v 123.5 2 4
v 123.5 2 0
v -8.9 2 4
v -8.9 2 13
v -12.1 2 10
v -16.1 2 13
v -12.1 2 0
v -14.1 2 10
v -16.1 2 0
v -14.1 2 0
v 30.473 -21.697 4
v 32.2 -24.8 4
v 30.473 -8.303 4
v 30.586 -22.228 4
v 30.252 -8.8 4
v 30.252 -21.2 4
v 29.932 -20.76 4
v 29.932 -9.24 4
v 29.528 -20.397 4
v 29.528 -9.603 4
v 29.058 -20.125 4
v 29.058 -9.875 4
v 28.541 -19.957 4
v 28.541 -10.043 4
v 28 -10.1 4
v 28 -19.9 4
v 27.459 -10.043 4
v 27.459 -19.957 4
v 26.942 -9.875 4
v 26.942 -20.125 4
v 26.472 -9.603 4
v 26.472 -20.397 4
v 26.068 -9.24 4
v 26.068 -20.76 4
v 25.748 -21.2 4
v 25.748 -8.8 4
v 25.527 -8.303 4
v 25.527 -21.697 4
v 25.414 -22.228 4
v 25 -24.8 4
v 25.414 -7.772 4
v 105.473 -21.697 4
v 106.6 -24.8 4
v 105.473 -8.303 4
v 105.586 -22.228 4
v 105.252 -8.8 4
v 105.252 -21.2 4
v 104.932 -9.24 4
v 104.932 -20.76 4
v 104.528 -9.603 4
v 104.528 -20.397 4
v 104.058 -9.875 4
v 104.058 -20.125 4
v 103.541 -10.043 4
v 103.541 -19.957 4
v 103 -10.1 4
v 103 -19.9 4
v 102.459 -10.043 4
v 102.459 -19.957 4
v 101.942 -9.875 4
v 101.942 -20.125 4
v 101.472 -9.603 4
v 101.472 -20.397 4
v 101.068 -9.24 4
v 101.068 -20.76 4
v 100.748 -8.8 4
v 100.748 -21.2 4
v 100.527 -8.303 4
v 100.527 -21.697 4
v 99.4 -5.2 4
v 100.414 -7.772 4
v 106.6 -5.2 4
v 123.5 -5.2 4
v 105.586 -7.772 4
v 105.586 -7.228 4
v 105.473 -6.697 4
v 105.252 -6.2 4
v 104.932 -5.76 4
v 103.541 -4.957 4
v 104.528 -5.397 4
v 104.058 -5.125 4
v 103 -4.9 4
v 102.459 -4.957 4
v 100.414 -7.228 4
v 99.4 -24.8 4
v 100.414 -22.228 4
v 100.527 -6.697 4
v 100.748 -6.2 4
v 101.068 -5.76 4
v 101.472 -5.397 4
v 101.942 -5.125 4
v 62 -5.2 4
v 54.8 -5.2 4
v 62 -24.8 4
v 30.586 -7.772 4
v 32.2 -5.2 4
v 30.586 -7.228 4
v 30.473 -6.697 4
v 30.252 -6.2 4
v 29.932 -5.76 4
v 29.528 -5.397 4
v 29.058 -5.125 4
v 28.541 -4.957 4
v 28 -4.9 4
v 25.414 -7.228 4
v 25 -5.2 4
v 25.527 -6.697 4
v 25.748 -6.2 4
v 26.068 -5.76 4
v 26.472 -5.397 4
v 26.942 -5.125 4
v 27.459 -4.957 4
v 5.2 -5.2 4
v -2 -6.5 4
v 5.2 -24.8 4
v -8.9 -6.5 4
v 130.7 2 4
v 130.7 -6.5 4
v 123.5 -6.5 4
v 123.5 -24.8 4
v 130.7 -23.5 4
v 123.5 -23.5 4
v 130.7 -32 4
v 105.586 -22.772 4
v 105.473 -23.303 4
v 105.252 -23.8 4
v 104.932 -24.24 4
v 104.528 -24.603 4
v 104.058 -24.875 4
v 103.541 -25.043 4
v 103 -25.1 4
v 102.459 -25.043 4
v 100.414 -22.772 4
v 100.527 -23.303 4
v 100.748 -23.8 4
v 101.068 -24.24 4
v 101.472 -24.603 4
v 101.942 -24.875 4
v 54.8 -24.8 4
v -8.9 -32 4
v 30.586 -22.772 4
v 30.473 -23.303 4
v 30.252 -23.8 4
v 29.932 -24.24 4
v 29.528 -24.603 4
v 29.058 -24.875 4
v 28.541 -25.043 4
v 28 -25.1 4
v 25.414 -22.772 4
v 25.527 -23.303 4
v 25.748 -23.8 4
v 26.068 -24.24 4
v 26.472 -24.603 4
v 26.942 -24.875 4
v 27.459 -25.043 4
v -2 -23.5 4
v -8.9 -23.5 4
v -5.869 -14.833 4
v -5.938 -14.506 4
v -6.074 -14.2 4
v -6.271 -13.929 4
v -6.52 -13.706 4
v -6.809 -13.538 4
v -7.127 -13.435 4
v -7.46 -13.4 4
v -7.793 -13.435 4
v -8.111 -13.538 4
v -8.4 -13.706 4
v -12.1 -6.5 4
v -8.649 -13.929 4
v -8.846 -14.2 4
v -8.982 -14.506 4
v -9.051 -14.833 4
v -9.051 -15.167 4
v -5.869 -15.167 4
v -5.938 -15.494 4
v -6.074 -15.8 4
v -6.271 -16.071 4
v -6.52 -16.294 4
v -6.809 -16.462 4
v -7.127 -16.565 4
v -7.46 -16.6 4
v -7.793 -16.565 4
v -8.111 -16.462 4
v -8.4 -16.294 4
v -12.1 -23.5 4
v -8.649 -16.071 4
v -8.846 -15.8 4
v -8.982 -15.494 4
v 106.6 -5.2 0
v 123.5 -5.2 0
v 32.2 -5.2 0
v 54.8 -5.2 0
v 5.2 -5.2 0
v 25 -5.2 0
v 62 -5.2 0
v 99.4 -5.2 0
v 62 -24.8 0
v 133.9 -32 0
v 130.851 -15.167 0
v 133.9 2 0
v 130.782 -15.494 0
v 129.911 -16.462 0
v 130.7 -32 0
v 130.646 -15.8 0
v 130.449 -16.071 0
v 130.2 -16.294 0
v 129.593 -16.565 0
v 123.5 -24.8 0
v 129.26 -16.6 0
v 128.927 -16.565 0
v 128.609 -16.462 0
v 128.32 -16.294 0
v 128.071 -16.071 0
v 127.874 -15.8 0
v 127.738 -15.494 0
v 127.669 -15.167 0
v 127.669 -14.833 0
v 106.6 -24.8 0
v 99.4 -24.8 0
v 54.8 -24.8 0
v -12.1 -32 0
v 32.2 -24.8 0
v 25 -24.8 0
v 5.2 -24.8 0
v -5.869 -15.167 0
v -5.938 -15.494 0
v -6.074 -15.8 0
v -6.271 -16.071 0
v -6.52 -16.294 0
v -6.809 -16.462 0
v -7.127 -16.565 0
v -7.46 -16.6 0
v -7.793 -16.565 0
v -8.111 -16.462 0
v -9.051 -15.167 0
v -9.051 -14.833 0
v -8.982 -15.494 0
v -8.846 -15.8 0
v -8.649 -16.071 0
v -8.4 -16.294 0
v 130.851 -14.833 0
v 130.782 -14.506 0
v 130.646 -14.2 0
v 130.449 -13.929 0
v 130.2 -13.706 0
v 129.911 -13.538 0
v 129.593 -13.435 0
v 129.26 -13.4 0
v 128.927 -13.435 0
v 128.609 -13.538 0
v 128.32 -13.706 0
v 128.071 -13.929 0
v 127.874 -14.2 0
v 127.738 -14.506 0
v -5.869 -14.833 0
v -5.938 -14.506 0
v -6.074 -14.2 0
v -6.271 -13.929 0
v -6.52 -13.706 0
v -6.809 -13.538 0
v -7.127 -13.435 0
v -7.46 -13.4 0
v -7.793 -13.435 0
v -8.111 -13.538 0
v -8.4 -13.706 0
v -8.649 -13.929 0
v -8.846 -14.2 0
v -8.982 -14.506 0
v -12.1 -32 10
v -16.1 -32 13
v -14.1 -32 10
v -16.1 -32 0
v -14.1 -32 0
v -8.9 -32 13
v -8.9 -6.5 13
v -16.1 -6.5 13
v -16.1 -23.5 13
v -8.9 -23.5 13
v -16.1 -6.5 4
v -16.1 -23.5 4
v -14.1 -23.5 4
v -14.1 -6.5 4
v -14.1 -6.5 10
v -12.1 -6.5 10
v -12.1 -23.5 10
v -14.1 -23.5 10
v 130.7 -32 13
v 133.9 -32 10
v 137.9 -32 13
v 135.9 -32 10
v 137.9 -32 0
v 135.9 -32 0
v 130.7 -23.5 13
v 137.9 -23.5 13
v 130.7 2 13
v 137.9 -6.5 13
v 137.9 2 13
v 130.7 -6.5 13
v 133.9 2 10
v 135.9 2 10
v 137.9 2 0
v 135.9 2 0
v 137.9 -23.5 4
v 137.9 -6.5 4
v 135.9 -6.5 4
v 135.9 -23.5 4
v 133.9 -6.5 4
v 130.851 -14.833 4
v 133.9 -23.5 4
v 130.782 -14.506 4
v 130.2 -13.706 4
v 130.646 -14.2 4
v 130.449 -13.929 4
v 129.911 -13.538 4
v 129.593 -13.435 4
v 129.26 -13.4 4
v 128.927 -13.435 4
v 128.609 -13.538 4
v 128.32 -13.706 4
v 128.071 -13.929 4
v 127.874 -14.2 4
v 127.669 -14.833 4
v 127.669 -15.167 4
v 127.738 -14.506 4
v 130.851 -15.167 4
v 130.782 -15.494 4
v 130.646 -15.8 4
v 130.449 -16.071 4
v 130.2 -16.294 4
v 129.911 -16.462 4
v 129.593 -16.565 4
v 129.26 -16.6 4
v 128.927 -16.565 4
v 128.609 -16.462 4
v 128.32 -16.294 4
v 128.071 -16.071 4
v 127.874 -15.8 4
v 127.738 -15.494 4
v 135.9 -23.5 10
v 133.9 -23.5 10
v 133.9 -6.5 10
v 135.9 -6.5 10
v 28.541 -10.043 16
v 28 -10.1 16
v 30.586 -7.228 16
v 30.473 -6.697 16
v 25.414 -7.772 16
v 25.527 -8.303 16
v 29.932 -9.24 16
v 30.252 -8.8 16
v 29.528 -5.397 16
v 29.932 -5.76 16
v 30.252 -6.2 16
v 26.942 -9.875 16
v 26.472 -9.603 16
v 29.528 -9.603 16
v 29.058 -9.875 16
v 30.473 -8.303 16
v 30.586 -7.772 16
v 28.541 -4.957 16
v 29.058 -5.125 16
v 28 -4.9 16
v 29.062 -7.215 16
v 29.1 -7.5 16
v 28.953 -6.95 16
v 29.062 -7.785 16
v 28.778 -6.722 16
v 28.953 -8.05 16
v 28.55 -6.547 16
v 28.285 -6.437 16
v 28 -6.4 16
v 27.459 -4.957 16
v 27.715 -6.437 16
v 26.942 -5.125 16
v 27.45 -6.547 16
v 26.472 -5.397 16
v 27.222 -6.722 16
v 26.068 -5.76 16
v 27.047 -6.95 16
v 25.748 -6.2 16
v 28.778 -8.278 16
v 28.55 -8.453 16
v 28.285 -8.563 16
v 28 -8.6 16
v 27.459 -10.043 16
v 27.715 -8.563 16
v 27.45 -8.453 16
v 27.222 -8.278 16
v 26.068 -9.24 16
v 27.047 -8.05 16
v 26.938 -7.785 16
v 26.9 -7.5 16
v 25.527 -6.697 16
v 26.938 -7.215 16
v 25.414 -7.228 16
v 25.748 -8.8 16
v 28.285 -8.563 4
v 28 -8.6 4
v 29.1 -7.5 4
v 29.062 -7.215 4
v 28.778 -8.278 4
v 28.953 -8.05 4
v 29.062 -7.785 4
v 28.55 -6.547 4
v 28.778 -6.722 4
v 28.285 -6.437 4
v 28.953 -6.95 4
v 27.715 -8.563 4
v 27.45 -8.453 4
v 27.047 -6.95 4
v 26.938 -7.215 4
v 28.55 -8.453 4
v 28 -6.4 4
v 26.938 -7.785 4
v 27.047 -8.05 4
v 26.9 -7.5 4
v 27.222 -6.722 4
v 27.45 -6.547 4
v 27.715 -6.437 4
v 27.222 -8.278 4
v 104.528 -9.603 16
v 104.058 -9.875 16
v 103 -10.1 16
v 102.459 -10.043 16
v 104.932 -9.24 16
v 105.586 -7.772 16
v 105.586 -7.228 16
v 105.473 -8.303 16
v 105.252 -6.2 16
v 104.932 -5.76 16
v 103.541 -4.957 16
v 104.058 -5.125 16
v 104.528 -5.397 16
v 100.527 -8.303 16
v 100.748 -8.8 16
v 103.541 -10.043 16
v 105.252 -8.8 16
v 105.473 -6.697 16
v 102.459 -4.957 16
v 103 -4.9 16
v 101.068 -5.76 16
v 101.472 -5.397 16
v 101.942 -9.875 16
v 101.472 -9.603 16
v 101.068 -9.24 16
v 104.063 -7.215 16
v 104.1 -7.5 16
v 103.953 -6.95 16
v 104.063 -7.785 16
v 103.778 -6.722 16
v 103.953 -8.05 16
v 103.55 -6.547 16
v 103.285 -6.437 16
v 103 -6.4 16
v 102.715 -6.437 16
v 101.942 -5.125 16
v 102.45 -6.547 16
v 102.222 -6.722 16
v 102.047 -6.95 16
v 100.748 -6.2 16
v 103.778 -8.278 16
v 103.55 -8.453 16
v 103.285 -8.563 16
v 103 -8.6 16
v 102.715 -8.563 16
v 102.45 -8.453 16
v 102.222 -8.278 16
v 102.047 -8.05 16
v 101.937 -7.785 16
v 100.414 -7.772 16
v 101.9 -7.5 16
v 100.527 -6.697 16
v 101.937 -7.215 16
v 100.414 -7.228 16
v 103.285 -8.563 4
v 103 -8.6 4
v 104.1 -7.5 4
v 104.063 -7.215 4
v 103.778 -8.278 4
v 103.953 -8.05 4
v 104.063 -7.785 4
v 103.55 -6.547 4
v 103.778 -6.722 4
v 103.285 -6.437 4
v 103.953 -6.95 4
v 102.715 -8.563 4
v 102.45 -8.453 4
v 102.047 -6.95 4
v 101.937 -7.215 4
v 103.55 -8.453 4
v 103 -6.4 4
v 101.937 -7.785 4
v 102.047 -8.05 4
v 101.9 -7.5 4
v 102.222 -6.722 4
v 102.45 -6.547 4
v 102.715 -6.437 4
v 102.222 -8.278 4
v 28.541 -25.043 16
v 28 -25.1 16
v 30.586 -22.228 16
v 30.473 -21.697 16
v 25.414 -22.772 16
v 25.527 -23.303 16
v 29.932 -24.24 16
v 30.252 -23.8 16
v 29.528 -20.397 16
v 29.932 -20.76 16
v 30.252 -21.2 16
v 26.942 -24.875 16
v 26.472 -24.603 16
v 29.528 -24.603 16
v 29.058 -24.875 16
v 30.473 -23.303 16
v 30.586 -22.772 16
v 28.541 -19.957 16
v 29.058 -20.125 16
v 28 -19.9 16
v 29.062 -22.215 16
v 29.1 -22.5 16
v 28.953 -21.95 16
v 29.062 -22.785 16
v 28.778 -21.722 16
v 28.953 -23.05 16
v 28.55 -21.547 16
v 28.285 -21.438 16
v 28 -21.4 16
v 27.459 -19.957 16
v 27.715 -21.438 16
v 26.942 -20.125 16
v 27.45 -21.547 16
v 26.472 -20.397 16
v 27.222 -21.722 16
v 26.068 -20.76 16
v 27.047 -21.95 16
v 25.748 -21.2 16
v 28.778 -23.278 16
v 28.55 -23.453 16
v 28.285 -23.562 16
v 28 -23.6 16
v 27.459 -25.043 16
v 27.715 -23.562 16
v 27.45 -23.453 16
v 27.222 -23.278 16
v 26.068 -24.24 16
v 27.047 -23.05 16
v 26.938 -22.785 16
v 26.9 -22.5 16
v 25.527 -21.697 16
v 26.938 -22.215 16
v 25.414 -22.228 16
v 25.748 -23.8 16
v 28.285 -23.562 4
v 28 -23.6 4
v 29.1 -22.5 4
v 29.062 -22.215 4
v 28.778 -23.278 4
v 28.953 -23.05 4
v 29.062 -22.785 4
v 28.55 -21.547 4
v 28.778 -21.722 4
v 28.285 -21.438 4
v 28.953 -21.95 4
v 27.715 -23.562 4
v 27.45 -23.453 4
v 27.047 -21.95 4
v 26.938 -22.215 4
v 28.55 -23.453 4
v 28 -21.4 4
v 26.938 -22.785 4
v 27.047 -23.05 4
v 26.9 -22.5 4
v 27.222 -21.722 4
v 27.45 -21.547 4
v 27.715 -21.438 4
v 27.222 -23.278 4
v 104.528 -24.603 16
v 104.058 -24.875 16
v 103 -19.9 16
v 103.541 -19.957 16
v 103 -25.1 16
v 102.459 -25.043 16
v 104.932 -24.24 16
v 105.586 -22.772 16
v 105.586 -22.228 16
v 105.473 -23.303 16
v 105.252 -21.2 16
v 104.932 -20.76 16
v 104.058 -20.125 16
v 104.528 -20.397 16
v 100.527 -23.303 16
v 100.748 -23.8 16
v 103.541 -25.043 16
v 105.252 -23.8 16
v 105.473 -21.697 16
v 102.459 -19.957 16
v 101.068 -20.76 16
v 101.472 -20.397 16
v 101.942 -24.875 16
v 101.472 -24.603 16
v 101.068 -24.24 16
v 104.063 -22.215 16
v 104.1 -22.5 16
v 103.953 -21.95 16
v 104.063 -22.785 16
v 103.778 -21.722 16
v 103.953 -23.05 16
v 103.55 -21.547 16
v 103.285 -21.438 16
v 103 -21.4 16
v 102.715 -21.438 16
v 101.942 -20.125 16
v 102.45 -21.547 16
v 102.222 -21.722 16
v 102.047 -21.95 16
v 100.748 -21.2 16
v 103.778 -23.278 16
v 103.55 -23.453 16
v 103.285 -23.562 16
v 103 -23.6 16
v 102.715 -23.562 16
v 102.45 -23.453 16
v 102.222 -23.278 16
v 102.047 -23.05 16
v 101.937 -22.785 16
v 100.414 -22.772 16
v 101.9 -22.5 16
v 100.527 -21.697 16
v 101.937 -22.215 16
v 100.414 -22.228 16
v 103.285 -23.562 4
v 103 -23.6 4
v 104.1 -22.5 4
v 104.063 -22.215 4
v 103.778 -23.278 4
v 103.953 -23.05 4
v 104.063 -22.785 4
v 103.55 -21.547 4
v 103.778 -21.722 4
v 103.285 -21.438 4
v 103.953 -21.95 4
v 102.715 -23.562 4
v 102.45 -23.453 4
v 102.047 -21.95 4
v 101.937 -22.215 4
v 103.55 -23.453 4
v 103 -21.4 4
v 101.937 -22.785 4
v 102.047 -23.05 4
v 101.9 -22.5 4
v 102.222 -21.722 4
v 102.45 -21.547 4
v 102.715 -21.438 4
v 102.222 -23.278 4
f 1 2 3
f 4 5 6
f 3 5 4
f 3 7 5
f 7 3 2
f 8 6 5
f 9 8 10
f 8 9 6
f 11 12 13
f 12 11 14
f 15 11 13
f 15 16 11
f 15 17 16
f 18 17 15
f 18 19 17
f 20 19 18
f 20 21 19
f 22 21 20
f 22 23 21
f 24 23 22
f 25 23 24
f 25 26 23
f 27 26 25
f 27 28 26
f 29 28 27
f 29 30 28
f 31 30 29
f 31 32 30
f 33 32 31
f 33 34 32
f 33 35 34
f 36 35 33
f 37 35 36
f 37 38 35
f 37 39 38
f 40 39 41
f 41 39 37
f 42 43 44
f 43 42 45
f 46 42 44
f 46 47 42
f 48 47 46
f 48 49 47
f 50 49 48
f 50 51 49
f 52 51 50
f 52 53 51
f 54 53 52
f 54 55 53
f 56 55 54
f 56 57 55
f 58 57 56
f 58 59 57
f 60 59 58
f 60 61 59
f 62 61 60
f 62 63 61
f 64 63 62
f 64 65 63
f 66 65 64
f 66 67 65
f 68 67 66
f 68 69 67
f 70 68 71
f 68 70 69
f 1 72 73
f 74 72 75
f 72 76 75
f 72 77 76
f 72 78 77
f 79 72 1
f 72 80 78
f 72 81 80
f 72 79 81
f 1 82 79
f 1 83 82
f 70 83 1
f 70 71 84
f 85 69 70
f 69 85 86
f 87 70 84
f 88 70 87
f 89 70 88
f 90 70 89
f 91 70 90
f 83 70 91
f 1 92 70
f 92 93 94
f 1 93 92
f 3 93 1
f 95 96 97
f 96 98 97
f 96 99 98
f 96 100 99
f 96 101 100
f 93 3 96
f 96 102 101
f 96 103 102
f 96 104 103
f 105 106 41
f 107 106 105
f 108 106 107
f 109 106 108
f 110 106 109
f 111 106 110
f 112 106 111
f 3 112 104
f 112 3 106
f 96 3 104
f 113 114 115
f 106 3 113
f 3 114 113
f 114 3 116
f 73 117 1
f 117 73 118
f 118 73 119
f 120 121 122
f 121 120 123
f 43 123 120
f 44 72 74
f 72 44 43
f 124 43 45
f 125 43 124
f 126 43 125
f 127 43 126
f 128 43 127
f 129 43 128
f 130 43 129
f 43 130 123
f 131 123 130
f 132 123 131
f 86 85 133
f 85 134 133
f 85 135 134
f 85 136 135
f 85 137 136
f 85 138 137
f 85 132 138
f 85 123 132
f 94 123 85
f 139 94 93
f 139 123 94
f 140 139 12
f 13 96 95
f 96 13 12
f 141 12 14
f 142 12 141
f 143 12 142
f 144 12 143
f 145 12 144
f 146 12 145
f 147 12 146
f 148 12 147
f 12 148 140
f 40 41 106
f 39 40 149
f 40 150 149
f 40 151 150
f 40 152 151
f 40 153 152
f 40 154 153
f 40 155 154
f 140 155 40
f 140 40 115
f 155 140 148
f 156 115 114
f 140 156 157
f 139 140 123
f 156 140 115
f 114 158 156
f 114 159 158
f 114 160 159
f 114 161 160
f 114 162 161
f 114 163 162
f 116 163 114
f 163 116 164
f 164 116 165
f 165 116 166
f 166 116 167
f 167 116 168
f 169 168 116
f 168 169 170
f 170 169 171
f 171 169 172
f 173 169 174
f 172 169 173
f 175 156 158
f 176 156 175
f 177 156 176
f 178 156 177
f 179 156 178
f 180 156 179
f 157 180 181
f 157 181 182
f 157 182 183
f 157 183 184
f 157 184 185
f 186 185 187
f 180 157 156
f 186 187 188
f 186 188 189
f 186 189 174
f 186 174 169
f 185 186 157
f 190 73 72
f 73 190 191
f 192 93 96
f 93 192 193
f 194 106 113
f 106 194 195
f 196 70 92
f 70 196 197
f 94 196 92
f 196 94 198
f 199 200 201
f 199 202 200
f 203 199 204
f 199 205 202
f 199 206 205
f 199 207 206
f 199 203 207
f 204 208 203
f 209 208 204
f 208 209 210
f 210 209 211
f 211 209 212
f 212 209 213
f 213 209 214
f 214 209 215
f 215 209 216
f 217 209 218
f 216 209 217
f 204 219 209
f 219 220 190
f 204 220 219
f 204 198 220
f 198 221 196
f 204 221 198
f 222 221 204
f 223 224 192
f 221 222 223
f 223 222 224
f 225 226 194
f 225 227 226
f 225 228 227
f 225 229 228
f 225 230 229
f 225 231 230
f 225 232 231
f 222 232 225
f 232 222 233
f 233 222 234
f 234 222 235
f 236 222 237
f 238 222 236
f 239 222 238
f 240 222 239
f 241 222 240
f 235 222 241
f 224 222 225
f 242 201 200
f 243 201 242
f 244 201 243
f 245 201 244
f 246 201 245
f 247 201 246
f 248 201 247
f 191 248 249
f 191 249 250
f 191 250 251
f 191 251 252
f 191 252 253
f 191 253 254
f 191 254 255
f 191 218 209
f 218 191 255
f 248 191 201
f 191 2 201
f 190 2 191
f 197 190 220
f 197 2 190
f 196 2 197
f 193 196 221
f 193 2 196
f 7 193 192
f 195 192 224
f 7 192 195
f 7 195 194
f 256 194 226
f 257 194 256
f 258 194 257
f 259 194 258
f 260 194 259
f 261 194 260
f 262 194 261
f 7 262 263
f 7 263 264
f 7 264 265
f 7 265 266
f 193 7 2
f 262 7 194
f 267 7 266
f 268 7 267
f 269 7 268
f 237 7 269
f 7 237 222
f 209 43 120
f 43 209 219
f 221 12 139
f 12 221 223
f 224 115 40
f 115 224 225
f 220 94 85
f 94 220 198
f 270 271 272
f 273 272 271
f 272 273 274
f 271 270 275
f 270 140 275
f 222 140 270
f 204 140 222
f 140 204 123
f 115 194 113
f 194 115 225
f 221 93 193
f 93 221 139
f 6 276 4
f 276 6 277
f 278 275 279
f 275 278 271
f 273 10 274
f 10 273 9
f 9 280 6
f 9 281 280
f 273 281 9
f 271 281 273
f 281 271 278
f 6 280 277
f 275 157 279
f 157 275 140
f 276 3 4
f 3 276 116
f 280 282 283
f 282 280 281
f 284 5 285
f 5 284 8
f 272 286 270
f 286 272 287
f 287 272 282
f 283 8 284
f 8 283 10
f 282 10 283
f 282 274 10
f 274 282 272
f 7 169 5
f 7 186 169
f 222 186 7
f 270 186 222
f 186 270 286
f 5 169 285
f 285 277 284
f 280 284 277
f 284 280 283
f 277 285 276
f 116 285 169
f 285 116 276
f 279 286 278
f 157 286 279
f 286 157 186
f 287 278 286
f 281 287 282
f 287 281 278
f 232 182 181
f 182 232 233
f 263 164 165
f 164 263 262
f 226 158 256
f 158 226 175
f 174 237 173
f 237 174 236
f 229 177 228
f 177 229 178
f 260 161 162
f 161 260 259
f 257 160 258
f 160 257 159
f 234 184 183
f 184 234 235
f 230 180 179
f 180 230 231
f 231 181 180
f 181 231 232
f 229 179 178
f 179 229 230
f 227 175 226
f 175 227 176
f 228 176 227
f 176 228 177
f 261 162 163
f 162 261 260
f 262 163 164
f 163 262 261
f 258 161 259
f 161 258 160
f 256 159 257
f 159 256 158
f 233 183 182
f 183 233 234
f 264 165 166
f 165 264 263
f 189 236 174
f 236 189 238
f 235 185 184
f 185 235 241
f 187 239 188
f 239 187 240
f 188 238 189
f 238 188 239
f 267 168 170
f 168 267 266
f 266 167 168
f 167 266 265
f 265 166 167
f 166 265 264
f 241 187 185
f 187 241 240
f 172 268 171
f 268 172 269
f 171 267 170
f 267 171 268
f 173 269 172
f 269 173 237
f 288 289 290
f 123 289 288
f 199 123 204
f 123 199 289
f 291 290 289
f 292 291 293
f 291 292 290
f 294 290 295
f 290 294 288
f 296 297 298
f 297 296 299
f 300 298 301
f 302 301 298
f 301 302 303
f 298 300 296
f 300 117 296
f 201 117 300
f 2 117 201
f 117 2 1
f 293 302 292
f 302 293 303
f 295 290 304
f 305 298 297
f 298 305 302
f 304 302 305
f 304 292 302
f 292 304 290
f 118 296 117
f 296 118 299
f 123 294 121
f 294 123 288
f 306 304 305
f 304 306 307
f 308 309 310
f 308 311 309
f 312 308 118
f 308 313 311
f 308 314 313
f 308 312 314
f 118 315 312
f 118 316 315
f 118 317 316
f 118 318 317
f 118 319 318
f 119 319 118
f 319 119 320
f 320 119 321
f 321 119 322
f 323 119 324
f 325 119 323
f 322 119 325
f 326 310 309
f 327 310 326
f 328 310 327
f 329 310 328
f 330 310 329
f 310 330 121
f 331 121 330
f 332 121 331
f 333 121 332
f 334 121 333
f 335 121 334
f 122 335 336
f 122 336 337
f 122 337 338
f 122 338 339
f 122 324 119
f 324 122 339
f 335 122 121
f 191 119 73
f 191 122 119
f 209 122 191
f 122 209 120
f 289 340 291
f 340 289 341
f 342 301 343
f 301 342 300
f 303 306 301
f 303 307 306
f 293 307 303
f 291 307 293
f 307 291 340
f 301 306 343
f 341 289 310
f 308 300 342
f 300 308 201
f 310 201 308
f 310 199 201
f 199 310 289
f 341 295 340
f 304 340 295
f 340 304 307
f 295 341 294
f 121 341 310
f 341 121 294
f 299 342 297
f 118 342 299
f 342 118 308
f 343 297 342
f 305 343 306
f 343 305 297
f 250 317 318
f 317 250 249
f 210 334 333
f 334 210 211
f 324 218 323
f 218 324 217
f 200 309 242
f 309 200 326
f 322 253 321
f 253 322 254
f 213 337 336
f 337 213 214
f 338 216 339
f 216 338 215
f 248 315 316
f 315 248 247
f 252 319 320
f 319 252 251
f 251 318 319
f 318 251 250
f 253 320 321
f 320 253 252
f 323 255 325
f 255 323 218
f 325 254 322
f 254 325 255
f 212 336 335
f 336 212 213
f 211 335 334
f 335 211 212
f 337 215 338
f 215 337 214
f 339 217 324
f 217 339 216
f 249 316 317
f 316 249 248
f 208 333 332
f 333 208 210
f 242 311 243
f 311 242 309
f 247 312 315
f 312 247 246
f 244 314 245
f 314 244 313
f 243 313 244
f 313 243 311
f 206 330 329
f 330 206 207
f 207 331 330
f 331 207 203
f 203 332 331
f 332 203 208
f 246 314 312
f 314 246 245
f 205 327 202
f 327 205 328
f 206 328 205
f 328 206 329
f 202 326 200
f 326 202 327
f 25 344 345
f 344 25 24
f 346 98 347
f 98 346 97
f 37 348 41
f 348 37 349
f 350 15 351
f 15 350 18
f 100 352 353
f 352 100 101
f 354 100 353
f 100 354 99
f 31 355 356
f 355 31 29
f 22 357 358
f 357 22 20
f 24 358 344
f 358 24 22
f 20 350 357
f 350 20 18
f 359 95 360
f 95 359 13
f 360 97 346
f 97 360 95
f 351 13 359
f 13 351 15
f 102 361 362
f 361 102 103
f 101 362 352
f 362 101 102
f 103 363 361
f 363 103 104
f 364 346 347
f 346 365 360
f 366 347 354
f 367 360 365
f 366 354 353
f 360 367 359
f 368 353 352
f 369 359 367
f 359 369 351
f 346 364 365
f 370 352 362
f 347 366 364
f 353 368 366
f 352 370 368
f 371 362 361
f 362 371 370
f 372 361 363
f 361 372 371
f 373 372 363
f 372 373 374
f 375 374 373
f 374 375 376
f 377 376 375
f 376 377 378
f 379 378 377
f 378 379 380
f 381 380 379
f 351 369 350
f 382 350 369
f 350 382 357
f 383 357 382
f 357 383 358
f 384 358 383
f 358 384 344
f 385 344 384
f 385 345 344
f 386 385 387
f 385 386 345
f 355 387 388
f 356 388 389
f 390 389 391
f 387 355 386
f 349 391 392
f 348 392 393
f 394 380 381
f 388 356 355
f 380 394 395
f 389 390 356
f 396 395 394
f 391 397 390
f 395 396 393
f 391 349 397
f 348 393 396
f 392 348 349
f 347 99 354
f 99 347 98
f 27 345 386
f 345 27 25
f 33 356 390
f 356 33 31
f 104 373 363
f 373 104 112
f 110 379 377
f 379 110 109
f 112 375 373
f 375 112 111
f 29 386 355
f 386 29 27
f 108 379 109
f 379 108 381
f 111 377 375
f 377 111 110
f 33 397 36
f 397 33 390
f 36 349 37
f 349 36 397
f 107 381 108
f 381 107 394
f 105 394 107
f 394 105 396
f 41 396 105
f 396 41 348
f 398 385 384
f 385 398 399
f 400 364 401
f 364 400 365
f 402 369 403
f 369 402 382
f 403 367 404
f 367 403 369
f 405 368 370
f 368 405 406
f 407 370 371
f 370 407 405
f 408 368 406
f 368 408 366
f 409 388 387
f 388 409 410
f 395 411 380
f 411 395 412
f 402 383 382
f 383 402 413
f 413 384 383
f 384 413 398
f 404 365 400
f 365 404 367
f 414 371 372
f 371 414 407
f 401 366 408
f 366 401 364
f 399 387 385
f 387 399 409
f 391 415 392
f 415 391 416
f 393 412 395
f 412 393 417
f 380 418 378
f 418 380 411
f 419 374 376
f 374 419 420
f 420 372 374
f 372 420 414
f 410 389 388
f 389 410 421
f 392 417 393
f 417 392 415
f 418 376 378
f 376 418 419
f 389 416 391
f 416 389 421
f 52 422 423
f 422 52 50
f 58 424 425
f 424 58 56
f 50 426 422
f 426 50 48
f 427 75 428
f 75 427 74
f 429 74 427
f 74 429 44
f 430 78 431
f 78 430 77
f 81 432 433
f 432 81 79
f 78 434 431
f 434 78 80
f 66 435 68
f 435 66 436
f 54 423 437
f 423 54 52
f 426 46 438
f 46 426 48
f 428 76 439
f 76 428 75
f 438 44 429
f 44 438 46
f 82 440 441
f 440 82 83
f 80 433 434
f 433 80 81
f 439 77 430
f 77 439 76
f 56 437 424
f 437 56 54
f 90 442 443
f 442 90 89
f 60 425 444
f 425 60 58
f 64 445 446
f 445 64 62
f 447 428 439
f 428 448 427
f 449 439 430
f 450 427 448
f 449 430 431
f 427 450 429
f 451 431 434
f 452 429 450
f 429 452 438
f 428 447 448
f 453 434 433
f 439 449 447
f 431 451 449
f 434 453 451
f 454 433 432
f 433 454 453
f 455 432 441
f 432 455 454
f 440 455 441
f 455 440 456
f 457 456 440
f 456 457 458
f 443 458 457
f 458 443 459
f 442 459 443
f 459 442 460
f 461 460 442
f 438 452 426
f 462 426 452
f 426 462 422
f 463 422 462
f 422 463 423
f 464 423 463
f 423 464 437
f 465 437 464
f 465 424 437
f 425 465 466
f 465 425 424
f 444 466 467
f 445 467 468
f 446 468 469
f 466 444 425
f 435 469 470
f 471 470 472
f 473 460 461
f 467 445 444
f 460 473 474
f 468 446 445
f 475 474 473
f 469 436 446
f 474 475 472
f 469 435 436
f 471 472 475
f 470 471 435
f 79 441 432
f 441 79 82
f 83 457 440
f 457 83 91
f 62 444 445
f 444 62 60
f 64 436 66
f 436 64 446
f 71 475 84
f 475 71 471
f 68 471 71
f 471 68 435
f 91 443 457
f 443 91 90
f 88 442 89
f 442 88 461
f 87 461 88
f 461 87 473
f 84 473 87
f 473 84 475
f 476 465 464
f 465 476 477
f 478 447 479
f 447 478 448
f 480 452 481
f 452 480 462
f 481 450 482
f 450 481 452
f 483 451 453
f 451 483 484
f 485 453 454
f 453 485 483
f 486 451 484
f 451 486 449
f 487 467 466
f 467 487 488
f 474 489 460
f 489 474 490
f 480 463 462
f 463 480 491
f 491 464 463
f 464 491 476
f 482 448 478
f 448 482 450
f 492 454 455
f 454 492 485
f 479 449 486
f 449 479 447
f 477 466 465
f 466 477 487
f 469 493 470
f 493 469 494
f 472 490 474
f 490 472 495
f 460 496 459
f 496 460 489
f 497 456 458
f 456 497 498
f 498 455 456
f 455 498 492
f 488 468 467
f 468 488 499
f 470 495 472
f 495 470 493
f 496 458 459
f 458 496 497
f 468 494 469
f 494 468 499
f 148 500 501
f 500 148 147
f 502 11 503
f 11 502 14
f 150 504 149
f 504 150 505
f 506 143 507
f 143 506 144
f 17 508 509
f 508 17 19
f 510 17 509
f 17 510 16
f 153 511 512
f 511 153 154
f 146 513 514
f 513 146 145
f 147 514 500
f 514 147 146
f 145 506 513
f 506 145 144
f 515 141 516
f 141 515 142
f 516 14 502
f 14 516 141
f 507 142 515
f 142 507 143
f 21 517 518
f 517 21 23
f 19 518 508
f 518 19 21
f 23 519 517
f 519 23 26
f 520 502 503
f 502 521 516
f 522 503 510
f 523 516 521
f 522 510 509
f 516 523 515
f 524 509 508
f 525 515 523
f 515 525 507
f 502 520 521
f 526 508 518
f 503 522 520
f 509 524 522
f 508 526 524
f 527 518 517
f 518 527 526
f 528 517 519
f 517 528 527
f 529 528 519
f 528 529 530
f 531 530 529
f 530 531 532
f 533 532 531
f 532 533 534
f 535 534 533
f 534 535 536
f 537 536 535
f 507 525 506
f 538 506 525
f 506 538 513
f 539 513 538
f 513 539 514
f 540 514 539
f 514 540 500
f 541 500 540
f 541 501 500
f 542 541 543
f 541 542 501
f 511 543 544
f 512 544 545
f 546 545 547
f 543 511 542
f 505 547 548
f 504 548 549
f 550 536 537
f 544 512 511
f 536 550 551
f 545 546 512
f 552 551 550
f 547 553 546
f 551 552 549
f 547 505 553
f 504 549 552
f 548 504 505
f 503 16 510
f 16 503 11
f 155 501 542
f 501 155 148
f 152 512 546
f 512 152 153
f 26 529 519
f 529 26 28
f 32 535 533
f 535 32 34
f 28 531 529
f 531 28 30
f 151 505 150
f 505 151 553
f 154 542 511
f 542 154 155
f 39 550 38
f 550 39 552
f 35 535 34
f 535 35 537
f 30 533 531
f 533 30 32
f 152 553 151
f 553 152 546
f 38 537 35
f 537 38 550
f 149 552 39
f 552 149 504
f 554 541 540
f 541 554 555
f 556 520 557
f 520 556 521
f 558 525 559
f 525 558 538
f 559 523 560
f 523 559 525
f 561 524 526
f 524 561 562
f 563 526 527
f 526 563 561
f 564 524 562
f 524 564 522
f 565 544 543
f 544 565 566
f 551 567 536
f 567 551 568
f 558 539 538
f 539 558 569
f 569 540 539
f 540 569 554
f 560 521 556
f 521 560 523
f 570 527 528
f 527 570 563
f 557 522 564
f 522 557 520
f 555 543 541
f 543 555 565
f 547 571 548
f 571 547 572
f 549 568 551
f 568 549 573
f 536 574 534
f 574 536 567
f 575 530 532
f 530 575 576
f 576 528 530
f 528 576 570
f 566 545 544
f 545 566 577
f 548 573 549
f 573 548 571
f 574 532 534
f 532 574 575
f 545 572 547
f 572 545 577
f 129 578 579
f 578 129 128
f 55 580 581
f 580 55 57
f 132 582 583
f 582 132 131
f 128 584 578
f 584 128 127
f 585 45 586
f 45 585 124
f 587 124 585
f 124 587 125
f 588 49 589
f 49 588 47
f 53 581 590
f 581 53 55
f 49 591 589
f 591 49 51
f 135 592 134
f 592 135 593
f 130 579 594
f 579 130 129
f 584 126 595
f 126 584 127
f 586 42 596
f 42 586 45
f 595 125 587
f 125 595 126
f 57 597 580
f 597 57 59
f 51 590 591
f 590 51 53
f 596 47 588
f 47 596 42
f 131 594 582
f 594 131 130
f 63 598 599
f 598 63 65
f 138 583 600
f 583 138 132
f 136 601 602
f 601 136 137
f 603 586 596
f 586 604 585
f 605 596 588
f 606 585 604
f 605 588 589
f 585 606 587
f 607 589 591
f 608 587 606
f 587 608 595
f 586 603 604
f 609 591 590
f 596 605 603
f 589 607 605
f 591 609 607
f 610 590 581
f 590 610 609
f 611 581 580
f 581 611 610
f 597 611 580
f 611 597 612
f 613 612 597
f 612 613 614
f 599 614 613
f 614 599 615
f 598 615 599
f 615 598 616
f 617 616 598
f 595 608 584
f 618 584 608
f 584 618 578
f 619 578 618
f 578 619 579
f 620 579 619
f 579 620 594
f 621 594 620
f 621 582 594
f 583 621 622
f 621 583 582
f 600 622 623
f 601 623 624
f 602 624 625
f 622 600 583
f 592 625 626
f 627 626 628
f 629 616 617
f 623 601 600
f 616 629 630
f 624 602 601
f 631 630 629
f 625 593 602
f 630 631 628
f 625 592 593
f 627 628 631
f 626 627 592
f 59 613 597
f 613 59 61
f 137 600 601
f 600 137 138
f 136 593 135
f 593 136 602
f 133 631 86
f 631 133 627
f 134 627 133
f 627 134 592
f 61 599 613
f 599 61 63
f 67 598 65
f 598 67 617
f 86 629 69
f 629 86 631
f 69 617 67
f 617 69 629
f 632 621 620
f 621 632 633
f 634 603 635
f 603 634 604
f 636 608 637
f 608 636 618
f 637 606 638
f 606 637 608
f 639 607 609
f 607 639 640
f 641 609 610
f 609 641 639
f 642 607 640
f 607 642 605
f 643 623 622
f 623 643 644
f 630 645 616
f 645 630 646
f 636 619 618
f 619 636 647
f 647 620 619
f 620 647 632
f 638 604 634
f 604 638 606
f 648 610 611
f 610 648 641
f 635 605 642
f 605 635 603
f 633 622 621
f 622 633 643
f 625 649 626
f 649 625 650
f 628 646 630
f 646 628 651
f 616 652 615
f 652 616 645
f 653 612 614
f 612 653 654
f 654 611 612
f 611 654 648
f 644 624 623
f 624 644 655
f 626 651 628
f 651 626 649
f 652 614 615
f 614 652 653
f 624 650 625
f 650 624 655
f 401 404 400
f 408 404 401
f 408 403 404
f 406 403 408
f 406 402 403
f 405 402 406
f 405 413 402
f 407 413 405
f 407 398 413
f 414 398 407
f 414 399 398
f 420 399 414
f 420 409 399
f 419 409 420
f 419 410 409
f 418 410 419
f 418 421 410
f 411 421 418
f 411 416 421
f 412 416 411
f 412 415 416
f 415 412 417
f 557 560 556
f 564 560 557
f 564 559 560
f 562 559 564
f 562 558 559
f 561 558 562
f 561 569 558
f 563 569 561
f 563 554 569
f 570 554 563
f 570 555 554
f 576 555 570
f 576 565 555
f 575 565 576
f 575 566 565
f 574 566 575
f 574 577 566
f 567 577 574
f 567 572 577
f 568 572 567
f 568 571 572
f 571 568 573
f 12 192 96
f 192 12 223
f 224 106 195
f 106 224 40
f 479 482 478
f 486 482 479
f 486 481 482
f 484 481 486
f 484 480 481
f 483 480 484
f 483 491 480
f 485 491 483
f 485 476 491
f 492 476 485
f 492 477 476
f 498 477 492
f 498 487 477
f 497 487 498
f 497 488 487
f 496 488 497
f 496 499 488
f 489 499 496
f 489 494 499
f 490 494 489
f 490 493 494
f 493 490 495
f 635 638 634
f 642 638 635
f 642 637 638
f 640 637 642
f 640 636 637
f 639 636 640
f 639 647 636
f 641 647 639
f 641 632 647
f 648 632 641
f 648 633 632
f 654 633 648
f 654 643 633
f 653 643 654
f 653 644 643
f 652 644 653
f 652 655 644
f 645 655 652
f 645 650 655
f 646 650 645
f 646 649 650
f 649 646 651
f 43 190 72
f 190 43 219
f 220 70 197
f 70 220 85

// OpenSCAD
bw = 30; // Board width
bh = 60; // Board height
spdw = 15; // Small pin delta width (center to center)
spdh = 75; // Small pin delta height (center to center)
spoh = 3; // Small pin delta (in height direction) from board edge 
spow = (bw-spdw)/2; // Small pin offset Y from board edge 
h = 4; // Height of plate
ph = 25; // Pin height
pr = 4; // Large pin radius
pbr = pr*1.7; // Large pin base radius
pow = pbr/2; // Offset from board to  large pin center
poh = pbr/2; // Offset from board to  large pin center
spr = 2.6; // Small pin radius
sph = 12;//3; // Small pin height
xbs = 2; // Extra board size
beam = spr*2;
antd = 5; // antenne diameter
antl = 22; // antenna length

fmw = bw+xbs*2; // frame mount width
fmh = 154; // frame mount height
fmwofs = (fmw - bw) / 2 - xbs;
fmhofs = (fmh - bh) *0.15;
fmgap = 2;
fmgapofs = 2;

pwpindist = 41; // distance between pin holes (center-to-center) for power unit

module pin_with_hole(posx, posy,goUp, ph=ph) {
  difference() {
    r = pbr;
    r1 = pr;
    r2 = r1*0.6;
    union() {
      translate([posx, posy, 0])
        cylinder(r=r, h, $fs=.3);
      if (goUp) {
        translate([posx, posy, h])
          cylinder(r=r1, ph, $fs=.3);
        translate([posx ,posy, ph+h], $fs=.3)
          cylinder(r=r2, h, $fs=.3);
        translate([posx ,posy, ph+h*2], $fs=.3)
          sphere(r=r2, $fs=.3);
      } else {
        translate([posx ,posy, h], $fs=.3)
          cylinder(r=r1, h*1.5, $fs=.3);        
        translate([posx ,posy, h*2.5], $fs=.3)
          sphere(r=r1, $fs=.3);
      }
    }
    // Create hole for upper pin to fit in
    translate([posx, posy, 0])
      cylinder(r=r2+0.2, h*2, $fs=.3);
  }
}

module small_pin(posx, posy) {
  difference() {
  translate([posx, posy, 0])
    cylinder(r=spr, h+sph, $fs=.3);
  translate([posx, posy, 0])
    cylinder(r=1.1, h+sph+5, $fs=.3);
  }
}

module frame() {
  translate([-xbs,-(xbs),0]) {
    translate([0,0,0])
      cube([beam+xbs, bh+xbs*2, h]);
    translate([bw+xbs*2-(beam+xbs),0,0])
      cube([beam+xbs, bh+xbs*2, h]);
    translate([0,0,0])
      cube([bw+xbs*2, beam+xbs, h]);
    translate([0,bh+xbs*2-(beam+xbs),0])
      cube([bw+xbs*2, beam+xbs, h]);
  }
}

module frameMountEdge(d, eh, gaph) {
  difference() {
    union() {
      cube([fmw, d, eh]);
      cube([fmw, d*2, h]);
    }
    translate([0,fmgapofs,0])
      cube([fmw, fmgap, gaph]);
    translate([fmw/4,0,h])
      cube(fmw/2,d*2,eh-h);
    translate([fmw/2, d*1.2, 0])
      cylinder(r=1.6, h, $fs=.3);
  }
}

module frameMount() {
  d = beam+xbs;
  gaph = 10;
  eh = gaph+3;
  translate([-(xbs+fmwofs),-(xbs+fmhofs),0]) {
    translate([0,d,0])
      cube([d, fmh-d*2, h]);
    translate([fmw-(d),d,0])
      cube([d, fmh-d*2, h]);
    translate([0,0,0])
      frameMountEdge(d, eh, gaph);
    translate([fmw,fmh,0])
      rotate([0,0,180])
      frameMountEdge(d, eh, gaph);
  }
}

module cluster() {
    rotate([0,0,-90]) {
        union() {
          difference() {
            union() {
              // Outside frame
              frame();
              // Frame mount
              frameMount();
              translate([0,25,0]) {
              // Crossbar 1
              translate([-xbs,0,0])
                cube([bw+xbs*2, beam+xbs, h]);
              // Crossbar 2
              translate([-xbs,spoh+spdh-((beam+xbs)/2),0])
                cube([bw+xbs*2, beam+xbs, h]);
              // Small PCB pins
              small_pin(spow, spoh);
              small_pin(spow, spoh+spdh);
              small_pin(spow+spdw, spoh);
              small_pin(spow+spdw, spoh+spdh);
              }
            }
          }
        }
    }
}

cluster();
